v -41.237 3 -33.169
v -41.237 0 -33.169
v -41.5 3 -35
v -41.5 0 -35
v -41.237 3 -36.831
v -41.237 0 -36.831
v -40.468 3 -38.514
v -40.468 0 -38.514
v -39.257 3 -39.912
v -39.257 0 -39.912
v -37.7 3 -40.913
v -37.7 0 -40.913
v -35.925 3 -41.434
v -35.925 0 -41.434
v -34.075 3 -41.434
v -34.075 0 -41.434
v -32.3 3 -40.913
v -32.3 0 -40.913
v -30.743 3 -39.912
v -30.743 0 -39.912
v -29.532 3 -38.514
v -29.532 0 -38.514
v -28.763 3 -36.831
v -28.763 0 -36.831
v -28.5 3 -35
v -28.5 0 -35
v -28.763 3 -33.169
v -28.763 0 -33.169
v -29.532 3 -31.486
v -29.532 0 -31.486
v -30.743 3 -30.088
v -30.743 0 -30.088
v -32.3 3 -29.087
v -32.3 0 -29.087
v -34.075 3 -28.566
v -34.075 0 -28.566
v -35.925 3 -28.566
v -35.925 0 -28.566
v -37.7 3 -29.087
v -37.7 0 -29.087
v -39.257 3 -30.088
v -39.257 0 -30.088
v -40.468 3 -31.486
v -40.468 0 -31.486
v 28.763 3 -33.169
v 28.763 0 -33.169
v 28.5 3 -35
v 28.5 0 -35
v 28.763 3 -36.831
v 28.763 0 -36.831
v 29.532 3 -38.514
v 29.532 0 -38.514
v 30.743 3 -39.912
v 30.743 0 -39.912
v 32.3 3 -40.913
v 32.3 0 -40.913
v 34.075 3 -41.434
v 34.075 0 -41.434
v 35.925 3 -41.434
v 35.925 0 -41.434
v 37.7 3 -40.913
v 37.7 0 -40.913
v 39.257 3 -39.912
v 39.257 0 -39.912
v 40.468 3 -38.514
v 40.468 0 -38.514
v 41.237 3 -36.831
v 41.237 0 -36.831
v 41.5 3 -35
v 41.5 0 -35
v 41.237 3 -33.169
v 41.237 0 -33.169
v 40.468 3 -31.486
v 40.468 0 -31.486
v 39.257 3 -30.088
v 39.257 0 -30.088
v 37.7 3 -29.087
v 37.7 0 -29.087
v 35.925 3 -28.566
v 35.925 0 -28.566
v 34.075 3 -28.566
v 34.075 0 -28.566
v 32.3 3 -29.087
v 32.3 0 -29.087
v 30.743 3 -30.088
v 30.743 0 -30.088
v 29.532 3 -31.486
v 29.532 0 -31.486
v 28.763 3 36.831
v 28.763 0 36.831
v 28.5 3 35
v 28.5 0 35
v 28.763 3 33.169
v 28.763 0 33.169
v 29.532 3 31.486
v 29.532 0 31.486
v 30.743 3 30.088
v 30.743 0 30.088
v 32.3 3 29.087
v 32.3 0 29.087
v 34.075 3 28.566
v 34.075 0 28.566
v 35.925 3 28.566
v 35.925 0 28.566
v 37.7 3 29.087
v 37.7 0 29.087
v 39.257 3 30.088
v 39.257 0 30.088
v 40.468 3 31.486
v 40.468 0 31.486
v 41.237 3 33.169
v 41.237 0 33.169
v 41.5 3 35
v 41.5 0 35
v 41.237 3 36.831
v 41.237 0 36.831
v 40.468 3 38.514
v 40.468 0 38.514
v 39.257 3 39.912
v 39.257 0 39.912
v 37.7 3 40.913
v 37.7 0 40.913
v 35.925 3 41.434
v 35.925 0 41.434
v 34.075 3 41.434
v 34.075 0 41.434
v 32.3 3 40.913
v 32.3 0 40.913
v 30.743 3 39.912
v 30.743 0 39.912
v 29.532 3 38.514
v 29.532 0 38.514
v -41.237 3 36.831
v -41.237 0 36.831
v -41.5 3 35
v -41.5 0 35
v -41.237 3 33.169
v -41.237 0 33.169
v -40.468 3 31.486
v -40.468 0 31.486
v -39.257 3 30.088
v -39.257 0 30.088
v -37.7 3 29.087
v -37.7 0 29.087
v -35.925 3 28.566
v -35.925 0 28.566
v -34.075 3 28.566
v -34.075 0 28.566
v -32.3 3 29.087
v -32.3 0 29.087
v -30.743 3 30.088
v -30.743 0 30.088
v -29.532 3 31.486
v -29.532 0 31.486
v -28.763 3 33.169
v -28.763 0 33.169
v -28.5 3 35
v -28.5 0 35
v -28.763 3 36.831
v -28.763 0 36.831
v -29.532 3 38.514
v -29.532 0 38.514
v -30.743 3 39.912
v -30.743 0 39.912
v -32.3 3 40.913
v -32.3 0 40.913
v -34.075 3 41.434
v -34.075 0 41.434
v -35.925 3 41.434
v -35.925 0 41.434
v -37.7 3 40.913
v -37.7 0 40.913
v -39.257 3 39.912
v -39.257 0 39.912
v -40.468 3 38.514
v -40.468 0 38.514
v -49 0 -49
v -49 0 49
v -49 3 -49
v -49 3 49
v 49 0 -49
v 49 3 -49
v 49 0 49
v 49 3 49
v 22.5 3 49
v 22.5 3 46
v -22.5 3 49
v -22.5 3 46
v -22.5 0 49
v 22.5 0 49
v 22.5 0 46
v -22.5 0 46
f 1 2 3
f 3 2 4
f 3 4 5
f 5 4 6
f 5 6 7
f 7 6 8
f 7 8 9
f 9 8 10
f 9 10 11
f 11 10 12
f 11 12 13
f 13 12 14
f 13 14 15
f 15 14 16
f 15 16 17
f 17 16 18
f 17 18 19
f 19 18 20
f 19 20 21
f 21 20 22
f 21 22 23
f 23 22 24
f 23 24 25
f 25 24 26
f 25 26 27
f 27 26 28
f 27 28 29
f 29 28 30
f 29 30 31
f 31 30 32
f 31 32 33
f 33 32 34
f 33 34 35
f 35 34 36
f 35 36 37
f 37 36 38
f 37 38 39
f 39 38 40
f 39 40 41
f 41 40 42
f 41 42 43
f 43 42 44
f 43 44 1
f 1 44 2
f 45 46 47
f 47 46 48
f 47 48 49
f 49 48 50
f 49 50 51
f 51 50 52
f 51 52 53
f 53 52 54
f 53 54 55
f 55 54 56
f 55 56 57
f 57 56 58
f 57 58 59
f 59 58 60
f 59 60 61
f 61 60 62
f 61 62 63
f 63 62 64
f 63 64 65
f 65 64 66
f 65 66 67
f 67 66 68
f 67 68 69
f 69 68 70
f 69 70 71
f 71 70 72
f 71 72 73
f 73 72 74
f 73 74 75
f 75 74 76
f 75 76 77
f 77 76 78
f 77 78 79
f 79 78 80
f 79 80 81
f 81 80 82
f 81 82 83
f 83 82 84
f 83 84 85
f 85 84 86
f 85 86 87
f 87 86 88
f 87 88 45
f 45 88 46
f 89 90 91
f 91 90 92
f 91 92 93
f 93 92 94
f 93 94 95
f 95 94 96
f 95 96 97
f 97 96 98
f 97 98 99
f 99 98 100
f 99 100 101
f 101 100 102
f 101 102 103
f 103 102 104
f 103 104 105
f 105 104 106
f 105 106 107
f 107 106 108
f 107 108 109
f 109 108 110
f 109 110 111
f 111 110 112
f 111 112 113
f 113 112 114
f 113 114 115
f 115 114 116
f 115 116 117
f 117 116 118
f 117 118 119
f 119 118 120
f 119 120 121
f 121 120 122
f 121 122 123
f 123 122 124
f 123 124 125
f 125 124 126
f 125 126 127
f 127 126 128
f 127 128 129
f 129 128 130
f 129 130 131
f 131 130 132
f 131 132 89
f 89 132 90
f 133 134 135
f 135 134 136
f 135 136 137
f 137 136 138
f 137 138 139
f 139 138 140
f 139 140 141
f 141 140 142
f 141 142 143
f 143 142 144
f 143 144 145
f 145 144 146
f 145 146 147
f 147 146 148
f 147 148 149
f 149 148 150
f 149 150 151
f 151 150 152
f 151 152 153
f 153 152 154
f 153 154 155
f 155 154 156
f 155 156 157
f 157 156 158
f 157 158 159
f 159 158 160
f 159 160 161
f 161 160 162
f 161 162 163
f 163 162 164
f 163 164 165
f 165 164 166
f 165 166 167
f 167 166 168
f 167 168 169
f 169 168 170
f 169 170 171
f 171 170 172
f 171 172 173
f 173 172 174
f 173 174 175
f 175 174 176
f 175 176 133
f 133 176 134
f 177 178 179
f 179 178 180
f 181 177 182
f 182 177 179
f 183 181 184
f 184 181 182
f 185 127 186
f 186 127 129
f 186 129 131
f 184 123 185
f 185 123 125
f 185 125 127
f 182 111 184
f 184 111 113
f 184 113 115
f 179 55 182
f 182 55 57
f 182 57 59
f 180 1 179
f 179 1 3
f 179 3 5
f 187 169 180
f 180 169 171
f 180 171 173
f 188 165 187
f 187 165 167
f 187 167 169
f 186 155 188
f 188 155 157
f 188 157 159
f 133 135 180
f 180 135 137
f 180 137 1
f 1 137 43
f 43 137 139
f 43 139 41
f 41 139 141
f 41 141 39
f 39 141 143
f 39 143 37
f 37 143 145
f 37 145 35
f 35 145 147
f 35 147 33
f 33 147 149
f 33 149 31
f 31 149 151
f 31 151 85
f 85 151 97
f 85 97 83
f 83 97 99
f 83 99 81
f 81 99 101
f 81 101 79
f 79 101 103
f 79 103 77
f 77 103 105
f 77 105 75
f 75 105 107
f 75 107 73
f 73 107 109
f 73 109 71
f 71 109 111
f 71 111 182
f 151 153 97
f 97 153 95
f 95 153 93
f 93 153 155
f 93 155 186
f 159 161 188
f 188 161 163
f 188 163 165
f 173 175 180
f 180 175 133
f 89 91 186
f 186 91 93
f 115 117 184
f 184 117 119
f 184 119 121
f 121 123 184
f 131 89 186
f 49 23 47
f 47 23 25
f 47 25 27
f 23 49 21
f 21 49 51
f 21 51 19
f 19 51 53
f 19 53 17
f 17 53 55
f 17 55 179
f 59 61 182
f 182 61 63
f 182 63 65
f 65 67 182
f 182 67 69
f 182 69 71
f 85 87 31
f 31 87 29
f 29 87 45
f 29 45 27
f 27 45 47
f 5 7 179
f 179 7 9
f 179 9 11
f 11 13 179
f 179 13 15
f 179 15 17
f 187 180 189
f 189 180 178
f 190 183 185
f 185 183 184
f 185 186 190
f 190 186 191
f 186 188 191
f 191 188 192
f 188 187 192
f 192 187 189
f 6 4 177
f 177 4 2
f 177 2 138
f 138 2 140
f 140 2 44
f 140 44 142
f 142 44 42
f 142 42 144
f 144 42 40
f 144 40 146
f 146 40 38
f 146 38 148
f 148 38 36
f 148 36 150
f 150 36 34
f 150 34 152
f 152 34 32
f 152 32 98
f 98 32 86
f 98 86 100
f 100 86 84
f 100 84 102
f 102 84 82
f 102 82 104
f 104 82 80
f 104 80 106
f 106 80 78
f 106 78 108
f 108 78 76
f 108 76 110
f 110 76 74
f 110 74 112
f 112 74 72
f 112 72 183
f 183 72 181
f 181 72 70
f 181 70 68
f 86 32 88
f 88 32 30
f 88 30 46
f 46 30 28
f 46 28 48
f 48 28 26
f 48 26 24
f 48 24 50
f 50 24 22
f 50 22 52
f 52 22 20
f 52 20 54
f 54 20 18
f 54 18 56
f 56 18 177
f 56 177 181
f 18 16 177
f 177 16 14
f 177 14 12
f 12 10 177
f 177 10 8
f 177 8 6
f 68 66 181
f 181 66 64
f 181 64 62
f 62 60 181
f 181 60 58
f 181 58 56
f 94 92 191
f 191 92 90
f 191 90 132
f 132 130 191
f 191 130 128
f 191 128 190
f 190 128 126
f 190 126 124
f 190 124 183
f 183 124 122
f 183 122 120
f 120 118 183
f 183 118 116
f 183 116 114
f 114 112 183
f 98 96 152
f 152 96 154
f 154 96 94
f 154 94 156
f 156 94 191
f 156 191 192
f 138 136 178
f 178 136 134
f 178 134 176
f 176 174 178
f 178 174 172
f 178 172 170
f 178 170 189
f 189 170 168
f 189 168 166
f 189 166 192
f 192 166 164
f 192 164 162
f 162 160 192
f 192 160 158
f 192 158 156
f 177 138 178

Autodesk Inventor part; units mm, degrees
ref_plane "YZ Plane" through (0, 0, 0) normal (1, 0, 0) x (0, 1, 0)
ref_plane "XZ Plane" through (0, 0, 0) normal (0, 1, 0) x (-1, 0, 0)
ref_plane "XY Plane" through (0, 0, 0) normal (0, 0, 1) x (1, 0, 0)
sketch "Sketch1" plane through (0, 0, 0) normal (0, 1, 0) x (-1, 0, 0)
  line L0 (49, -49) -> (-49, -49)
  line L1 (-49, -49) -> (-49, 49)
  line L2 (-49, 49) -> (49, 49)
  line L3 (49, 49) -> (49, -49)
  circle A0 centre (35, -35) radius 6.5
  circle A1 centre (-35, -35) radius 6.5
  circle A2 centre (-35, 35) radius 6.5
  circle A3 centre (35, 35) radius 6.5
  point P0 (0, 0)
  point P1 (0, -49)
  point P2 (49, 0)
  dimension "d0" = 98
  dimension "d1" = 98
  dimension "d2" = 13
  dimension "d3" = 13
  dimension "d4" = 13
  dimension "d5" = 13
  dimension "d6" = 14
  dimension "d7" = 14
  dimension "d8" = 14
  dimension "d9" = 14
extrude "Extrusion1" add sketch "Sketch1" along normal blind 3
sketch "Sketch2" plane through (0, 3, 0) normal (0, 1, 0) x (1, 0, 0)
  line L0 (-49, -49) -> (49, -49) projected
  line L1 (-22.5, -49) -> (-22.5, -46)
  line L2 (-22.5, -46) -> (22.5, -46)
  line L3 (22.5, -46) -> (22.5, -49)
  point P0 (0, 0)
  point P1 (0, -46)
  dimension "d12" = 3
  dimension "d13" = 45
extrude "Extrusion2" cut sketch "Sketch2" against normal blind 3
equation "\"d3\" = d2"
equation "\"d4\" = d2"
equation "\"d5\" = d2"
equation "\"d8\" = d6"
equation "\"d9\" = d7"
properties part number "Plate1"
